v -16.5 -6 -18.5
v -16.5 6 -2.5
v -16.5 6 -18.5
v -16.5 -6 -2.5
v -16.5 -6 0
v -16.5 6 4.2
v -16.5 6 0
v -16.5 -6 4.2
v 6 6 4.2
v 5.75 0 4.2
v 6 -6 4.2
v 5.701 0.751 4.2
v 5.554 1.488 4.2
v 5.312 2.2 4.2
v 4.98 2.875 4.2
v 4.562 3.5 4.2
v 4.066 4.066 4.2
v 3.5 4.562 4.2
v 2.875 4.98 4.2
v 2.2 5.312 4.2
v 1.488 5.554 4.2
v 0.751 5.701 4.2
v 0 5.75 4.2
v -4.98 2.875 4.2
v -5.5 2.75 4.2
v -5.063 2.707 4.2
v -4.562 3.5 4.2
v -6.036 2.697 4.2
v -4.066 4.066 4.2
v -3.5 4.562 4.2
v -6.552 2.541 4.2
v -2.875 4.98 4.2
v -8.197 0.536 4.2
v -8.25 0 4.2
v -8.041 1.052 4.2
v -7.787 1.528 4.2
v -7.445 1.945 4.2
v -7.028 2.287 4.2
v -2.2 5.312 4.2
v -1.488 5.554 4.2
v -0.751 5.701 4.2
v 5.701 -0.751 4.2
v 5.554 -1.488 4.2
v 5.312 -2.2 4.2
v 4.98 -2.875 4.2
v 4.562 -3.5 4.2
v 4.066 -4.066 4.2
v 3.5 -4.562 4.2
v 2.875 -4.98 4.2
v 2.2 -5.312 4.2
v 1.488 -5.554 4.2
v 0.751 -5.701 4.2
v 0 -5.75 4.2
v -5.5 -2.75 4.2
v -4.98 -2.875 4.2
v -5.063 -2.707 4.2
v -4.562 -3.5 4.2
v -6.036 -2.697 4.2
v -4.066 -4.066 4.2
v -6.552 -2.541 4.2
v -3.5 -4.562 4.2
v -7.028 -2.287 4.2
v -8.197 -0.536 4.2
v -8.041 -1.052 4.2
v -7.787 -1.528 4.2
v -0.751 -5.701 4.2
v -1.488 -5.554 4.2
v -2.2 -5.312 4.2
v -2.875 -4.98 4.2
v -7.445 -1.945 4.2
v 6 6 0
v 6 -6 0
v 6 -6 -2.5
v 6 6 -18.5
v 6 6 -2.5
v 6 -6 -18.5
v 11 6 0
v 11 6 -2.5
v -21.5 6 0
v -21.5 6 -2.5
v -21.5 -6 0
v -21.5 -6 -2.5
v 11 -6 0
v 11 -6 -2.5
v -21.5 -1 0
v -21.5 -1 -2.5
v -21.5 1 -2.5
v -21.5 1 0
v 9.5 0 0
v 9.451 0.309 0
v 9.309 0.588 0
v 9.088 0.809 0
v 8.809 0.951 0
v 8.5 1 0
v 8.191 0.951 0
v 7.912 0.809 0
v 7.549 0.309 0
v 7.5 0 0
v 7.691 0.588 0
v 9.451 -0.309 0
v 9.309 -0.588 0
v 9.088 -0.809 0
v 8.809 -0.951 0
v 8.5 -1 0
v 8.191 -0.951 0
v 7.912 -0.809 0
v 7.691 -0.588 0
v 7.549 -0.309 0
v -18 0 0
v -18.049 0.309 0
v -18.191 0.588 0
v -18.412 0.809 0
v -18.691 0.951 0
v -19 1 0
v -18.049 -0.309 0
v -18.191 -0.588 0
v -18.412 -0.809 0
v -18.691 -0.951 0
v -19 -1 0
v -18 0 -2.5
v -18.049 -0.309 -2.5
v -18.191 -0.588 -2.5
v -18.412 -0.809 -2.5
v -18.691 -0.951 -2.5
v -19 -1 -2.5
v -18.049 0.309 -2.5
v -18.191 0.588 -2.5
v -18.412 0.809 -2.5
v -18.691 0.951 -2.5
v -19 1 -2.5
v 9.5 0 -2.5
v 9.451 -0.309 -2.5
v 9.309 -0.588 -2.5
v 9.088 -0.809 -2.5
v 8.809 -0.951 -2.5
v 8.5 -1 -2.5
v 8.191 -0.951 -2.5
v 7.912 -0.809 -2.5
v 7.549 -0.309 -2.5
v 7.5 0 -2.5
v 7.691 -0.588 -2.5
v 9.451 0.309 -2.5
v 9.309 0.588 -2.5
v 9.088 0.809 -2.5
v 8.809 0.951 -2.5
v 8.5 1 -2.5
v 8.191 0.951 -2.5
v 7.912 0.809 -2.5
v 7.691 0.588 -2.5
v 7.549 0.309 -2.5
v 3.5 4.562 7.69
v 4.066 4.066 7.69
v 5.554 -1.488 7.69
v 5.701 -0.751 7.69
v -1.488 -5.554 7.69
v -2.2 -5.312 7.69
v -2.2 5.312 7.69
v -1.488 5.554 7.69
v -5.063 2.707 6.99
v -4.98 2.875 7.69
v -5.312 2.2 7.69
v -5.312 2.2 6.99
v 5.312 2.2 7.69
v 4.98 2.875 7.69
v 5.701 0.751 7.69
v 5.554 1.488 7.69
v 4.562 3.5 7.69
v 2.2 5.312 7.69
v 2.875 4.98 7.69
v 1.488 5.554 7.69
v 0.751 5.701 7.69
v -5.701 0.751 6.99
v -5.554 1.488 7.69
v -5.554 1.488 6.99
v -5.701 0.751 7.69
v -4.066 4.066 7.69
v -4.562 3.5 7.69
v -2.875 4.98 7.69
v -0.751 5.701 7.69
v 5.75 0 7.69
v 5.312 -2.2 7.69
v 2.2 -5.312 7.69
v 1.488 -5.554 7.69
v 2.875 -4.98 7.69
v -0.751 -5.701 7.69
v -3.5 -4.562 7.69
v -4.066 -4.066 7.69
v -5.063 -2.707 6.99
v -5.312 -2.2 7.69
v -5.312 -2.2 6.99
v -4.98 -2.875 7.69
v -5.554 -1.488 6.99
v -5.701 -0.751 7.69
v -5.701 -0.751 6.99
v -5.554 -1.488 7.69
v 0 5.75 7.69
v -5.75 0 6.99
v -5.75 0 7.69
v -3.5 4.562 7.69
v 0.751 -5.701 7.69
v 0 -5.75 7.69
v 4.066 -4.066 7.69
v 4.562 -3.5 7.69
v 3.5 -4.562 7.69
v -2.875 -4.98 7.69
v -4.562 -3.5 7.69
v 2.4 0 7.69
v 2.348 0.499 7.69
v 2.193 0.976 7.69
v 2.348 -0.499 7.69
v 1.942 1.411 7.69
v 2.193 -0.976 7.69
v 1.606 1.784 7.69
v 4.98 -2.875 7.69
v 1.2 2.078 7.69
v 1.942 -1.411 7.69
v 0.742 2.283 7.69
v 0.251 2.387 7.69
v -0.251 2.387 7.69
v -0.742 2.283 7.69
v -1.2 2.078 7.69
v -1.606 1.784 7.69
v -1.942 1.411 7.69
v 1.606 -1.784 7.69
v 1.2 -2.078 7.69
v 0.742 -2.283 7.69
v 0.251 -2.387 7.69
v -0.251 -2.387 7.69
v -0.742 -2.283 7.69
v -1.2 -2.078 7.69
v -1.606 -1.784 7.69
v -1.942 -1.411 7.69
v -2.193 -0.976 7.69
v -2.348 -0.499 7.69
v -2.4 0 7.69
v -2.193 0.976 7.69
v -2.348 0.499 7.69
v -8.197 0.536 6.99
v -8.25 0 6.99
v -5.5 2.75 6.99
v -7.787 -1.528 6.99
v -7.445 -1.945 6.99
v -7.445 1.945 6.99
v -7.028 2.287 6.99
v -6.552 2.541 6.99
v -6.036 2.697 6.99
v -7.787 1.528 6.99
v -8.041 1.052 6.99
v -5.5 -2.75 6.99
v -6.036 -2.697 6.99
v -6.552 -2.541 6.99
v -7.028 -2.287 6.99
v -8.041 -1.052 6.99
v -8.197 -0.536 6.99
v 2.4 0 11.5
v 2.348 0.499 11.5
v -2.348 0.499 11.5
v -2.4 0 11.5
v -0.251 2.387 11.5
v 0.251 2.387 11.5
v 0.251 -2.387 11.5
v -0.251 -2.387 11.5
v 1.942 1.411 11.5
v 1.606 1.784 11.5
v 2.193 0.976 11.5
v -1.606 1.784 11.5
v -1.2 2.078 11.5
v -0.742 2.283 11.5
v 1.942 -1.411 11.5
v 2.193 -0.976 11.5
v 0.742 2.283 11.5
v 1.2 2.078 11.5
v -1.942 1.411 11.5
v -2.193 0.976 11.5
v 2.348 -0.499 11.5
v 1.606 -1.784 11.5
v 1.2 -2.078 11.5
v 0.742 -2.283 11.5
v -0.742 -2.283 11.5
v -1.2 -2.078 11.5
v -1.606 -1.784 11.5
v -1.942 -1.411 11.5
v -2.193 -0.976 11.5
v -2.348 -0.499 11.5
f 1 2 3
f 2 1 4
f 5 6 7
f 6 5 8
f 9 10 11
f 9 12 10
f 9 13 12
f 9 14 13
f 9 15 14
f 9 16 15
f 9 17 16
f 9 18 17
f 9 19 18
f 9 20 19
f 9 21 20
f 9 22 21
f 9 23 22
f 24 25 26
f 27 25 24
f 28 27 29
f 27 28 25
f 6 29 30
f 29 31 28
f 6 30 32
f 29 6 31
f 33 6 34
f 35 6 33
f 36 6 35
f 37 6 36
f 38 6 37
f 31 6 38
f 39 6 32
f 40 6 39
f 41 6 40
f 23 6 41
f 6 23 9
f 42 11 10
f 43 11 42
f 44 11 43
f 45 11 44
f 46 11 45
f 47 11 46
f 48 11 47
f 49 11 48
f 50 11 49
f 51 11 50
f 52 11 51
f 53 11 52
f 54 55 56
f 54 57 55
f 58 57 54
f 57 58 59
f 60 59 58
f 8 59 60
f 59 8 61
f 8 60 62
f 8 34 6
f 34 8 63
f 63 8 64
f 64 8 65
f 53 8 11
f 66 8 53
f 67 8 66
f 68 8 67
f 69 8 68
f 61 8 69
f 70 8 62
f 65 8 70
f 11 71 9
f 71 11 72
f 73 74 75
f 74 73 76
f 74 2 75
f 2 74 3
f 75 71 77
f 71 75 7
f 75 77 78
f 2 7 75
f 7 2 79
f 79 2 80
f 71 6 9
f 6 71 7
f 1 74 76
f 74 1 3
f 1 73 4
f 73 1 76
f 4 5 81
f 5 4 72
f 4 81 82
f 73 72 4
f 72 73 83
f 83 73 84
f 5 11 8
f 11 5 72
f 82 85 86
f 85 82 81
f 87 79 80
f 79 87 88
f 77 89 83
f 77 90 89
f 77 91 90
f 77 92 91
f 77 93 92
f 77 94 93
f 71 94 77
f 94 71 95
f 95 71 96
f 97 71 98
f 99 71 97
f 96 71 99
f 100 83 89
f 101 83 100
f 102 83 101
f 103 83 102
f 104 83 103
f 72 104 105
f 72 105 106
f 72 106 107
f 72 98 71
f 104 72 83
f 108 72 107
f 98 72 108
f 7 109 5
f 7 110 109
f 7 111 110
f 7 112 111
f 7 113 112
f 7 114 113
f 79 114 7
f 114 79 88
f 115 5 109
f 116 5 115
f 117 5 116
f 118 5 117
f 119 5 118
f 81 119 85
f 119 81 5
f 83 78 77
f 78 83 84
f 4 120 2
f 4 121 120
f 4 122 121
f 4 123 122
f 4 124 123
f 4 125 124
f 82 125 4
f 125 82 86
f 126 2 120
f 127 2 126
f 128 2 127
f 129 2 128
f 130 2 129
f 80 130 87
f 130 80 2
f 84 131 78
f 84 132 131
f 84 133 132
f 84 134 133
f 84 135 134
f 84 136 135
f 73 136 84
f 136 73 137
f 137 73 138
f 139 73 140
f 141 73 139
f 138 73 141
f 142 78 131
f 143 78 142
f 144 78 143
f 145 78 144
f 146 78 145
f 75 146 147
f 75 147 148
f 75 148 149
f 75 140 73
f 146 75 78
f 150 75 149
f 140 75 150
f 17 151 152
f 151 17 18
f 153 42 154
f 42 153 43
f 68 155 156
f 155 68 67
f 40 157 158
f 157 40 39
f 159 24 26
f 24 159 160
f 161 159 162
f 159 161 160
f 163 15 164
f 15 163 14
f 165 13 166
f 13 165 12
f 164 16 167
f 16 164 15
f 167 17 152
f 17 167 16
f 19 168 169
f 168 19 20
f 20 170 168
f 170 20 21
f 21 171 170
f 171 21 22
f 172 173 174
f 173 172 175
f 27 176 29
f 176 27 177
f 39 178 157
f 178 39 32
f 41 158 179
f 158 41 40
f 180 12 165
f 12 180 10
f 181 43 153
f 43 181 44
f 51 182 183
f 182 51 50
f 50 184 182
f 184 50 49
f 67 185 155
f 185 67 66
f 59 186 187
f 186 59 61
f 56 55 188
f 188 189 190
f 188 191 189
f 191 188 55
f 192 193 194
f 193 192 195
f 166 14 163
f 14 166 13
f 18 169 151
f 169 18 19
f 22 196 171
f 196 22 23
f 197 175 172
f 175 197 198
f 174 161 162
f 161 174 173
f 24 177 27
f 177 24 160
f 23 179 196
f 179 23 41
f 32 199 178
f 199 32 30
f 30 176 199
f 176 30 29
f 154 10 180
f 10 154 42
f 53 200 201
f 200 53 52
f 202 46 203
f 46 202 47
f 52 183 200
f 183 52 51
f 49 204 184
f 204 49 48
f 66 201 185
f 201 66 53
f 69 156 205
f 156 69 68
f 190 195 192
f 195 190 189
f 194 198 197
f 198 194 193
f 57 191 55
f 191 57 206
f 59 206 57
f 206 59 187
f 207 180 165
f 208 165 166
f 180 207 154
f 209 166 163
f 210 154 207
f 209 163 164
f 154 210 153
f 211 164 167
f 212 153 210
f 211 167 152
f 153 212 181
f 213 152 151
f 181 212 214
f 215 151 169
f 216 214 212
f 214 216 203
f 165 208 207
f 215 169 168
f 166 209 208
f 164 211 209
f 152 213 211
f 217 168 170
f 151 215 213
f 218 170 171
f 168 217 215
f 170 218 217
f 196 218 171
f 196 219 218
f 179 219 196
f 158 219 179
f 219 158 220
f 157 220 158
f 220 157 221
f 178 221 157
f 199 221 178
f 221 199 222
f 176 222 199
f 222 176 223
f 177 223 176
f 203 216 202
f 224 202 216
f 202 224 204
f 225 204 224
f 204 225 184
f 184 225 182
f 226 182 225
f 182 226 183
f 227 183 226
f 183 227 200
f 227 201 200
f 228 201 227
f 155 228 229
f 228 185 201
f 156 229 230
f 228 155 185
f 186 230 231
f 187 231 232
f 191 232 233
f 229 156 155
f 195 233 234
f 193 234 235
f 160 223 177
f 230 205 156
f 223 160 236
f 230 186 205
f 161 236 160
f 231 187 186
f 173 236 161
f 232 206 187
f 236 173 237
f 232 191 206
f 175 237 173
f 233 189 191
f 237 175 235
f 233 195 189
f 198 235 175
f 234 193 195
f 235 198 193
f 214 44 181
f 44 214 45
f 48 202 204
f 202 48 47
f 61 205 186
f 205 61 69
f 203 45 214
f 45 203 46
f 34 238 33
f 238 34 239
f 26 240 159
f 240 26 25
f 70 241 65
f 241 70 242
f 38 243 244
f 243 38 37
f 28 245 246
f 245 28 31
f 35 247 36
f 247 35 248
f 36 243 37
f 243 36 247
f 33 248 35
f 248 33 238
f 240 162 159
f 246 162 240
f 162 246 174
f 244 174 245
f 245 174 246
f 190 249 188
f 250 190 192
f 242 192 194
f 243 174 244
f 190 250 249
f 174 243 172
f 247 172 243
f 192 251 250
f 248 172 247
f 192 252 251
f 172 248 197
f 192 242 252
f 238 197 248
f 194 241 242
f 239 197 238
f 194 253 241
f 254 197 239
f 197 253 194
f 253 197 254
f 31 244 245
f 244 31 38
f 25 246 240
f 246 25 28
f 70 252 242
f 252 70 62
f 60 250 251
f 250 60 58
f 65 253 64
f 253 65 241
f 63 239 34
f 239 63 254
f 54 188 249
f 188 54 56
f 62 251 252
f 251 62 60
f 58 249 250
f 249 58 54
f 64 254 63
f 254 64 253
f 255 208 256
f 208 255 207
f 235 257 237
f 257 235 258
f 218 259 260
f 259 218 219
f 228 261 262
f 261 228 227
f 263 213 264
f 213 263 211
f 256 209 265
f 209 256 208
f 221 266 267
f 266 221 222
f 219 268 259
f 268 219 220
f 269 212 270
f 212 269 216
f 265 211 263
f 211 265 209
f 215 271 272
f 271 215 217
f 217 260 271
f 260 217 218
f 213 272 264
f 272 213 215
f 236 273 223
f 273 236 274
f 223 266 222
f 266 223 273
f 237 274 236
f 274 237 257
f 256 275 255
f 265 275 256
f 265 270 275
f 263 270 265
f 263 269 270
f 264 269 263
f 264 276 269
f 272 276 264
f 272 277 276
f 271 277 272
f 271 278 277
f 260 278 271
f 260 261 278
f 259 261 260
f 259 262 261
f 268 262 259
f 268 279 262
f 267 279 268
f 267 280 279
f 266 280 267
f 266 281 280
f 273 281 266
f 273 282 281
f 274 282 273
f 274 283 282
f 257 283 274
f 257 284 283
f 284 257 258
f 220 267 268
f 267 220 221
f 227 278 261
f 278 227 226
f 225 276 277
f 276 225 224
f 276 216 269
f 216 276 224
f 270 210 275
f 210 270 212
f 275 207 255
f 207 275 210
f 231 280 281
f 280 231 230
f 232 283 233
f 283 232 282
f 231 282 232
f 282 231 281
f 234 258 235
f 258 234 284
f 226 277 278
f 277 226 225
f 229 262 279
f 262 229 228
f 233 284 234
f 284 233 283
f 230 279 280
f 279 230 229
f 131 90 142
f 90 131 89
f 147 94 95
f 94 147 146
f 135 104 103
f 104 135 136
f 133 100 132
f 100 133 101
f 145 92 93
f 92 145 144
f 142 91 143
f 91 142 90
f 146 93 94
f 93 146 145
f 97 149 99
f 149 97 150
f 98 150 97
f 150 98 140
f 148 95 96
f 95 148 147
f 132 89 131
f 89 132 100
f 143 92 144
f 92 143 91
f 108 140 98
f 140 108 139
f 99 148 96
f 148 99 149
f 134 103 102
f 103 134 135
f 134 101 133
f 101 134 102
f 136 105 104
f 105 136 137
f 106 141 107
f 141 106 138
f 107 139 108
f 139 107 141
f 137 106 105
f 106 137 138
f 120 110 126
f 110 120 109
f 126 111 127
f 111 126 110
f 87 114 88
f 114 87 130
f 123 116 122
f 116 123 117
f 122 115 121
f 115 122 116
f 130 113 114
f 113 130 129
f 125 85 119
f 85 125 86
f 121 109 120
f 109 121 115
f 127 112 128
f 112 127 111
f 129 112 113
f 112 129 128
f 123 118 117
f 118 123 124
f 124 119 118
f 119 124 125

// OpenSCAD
// SG90 / MG90 micro servo (millimetres). Typical SG90 dimensions, checked against the photo of a real one and the
// drawing in docs/servos/mg90-servo-motor.pdf (22.5 x 12 case, 32.5 over the ears).
// Origin: the output shaft axis, z = 0 is the TOP face of the mounting ears. The case hangs below (to z = -18.5)
// and continues about 4 mm above the ears. Cheap clones differ by up to about 0.5 mm: measure yours with callipers
// and change the numbers below.

BODY_L = 22.5;          // case length
BODY_W = 12;            // case width
EARS_L = 32.5;          // length over the mounting ears
EAR_T = 2.5;            // ear thickness
BELOW_EARS = 16;        // bottom of the case to the underside of the ears
ABOVE_EARS = 4.2;       // top of the case above the top face of the ears
SHAFT_FROM_END = 6;     // shaft axis to the nearest end of the case (the end with the closed ear hole)
EAR_HOLE_D = 2.0;       // ear screw holes
EAR_HOLE_SPACING = 27.5;
BOSS_D = 11.5;  BOSS_H = 3.5;       // round housing round the output shaft, on top of the case
SMALL_BOSS_D = 5.5; SMALL_BOSS_OFFSET = 5.5;   // the second, smaller bump next to it (towards the middle of the case)
SHAFT_D = 4.8; SHAFT_H = 11.5;      // splined output shaft, measured from z = 0

module servo() {
    cx = -(BODY_L / 2 - SHAFT_FROM_END);          // case centre, relative to the shaft
    difference() {
        union() {
            // case: below the ears, through the ears, and the cap above them
            translate([cx - BODY_L / 2, -BODY_W / 2, -(BELOW_EARS + EAR_T)]) cube([BODY_L, BODY_W, BELOW_EARS + EAR_T + ABOVE_EARS]);
            // ears
            translate([cx - EARS_L / 2, -BODY_W / 2, -EAR_T]) cube([EARS_L, BODY_W, EAR_T]);
            // bosses on top of the case
            translate([0, 0, ABOVE_EARS - 0.01]) cylinder(d = BOSS_D, h = BOSS_H, $fn = 48);
            translate([-SMALL_BOSS_OFFSET, 0, ABOVE_EARS - 0.01]) cylinder(d = SMALL_BOSS_D, h = BOSS_H - 0.7, $fn = 32);
            // output shaft
            cylinder(d = SHAFT_D, h = SHAFT_H, $fn = 30);
        }
        // ear screw holes: a round hole at the shaft end, an open slot at the other end
        translate([cx + EAR_HOLE_SPACING / 2, 0, -EAR_T - 1]) cylinder(d = EAR_HOLE_D, h = EAR_T + 2, $fn = 20);
        hull() {
            translate([cx - EAR_HOLE_SPACING / 2, 0, -EAR_T - 1]) cylinder(d = EAR_HOLE_D, h = EAR_T + 2, $fn = 20);
            translate([cx - EARS_L / 2 - 1, 0, -EAR_T - 1]) cylinder(d = EAR_HOLE_D, h = EAR_T + 2, $fn = 20);
        }
    }
}

servo();
